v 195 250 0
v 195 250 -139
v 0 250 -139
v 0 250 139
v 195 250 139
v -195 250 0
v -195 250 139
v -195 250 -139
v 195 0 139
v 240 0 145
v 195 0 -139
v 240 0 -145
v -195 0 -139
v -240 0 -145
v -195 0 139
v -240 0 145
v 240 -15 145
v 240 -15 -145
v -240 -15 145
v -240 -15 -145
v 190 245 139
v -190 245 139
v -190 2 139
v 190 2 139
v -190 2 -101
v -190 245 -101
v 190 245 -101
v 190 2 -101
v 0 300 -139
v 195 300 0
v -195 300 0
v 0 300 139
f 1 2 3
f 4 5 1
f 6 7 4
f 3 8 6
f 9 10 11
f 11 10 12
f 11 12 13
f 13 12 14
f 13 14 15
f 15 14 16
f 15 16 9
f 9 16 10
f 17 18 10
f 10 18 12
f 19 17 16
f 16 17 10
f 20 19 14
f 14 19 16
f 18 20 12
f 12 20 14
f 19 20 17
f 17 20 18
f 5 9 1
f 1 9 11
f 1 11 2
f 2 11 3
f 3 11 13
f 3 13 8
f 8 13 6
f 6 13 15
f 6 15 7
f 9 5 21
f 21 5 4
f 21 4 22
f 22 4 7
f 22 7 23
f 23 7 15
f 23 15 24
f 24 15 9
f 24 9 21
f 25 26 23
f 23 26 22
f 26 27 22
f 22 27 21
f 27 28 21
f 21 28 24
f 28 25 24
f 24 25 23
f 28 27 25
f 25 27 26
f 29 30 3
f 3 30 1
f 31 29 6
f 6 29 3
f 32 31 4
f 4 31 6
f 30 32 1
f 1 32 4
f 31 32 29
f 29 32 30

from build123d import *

# Parameters (mm, degrees)
SKETCH_1_W          = 480
SKETCH_1_H          = 290
EXTRUDE_1_DEPTH     = 15
SKETCH_2_W          = 390
SKETCH_2_H          = 178
EXTRUDE_2_DEPTH     = 250
SKETCH_7_W          = 390
SKETCH_7_H          = 250
EXTRUDE_7_DEPTH     = 100
SKETCH_8_W          = 380
SKETCH_8_H          = 243
CUT_EXTRUDE_1_DEPTH = 240
EXTRUDE_8_DEPTH     = 50


with BuildPart() as part:
    # 草图1 → 凸台-拉伸1 (new body)
    with BuildSketch(Plane(origin=(0, 0, 0), x_dir=(1, 0, 0), z_dir=(0, 1, 0))):
        Rectangle(SKETCH_1_W, SKETCH_1_H)
    extrude(amount=-EXTRUDE_1_DEPTH)

    # 草图2 → 凸台-拉伸2 (add)
    with BuildSketch(Plane(origin=(0, 0, 0), x_dir=(1, 0, 0), z_dir=(0, 1, 0))):
        with Locations((0, 50)):
            Rectangle(SKETCH_2_W, SKETCH_2_H)
    extrude(amount=EXTRUDE_2_DEPTH)

    # 草图7 → 凸台-拉伸7 (add)
    with BuildSketch(Plane.XY.offset(39)):
        with Locations((0, 125)):
            Rectangle(SKETCH_7_W, SKETCH_7_H)
    extrude(amount=EXTRUDE_7_DEPTH)

    # 草图8 → 切除-拉伸1 (cut)
    with BuildSketch(Plane.XY.offset(139)):
        with Locations((0, 123.5)):
            Rectangle(SKETCH_8_W, SKETCH_8_H)
    extrude(amount=-CUT_EXTRUDE_1_DEPTH, mode=Mode.SUBTRACT)

    # 草图10 → 凸台-拉伸8 (add)
    with BuildSketch(Plane(origin=(0, 250, 0), x_dir=(1, 0, 0), z_dir=(0, 1, 0))):
        Polygon((0, 139), (-195, 0), (0, -139), (195, 0), align=None)
    extrude(amount=EXTRUDE_8_DEPTH)


solid = part.part
